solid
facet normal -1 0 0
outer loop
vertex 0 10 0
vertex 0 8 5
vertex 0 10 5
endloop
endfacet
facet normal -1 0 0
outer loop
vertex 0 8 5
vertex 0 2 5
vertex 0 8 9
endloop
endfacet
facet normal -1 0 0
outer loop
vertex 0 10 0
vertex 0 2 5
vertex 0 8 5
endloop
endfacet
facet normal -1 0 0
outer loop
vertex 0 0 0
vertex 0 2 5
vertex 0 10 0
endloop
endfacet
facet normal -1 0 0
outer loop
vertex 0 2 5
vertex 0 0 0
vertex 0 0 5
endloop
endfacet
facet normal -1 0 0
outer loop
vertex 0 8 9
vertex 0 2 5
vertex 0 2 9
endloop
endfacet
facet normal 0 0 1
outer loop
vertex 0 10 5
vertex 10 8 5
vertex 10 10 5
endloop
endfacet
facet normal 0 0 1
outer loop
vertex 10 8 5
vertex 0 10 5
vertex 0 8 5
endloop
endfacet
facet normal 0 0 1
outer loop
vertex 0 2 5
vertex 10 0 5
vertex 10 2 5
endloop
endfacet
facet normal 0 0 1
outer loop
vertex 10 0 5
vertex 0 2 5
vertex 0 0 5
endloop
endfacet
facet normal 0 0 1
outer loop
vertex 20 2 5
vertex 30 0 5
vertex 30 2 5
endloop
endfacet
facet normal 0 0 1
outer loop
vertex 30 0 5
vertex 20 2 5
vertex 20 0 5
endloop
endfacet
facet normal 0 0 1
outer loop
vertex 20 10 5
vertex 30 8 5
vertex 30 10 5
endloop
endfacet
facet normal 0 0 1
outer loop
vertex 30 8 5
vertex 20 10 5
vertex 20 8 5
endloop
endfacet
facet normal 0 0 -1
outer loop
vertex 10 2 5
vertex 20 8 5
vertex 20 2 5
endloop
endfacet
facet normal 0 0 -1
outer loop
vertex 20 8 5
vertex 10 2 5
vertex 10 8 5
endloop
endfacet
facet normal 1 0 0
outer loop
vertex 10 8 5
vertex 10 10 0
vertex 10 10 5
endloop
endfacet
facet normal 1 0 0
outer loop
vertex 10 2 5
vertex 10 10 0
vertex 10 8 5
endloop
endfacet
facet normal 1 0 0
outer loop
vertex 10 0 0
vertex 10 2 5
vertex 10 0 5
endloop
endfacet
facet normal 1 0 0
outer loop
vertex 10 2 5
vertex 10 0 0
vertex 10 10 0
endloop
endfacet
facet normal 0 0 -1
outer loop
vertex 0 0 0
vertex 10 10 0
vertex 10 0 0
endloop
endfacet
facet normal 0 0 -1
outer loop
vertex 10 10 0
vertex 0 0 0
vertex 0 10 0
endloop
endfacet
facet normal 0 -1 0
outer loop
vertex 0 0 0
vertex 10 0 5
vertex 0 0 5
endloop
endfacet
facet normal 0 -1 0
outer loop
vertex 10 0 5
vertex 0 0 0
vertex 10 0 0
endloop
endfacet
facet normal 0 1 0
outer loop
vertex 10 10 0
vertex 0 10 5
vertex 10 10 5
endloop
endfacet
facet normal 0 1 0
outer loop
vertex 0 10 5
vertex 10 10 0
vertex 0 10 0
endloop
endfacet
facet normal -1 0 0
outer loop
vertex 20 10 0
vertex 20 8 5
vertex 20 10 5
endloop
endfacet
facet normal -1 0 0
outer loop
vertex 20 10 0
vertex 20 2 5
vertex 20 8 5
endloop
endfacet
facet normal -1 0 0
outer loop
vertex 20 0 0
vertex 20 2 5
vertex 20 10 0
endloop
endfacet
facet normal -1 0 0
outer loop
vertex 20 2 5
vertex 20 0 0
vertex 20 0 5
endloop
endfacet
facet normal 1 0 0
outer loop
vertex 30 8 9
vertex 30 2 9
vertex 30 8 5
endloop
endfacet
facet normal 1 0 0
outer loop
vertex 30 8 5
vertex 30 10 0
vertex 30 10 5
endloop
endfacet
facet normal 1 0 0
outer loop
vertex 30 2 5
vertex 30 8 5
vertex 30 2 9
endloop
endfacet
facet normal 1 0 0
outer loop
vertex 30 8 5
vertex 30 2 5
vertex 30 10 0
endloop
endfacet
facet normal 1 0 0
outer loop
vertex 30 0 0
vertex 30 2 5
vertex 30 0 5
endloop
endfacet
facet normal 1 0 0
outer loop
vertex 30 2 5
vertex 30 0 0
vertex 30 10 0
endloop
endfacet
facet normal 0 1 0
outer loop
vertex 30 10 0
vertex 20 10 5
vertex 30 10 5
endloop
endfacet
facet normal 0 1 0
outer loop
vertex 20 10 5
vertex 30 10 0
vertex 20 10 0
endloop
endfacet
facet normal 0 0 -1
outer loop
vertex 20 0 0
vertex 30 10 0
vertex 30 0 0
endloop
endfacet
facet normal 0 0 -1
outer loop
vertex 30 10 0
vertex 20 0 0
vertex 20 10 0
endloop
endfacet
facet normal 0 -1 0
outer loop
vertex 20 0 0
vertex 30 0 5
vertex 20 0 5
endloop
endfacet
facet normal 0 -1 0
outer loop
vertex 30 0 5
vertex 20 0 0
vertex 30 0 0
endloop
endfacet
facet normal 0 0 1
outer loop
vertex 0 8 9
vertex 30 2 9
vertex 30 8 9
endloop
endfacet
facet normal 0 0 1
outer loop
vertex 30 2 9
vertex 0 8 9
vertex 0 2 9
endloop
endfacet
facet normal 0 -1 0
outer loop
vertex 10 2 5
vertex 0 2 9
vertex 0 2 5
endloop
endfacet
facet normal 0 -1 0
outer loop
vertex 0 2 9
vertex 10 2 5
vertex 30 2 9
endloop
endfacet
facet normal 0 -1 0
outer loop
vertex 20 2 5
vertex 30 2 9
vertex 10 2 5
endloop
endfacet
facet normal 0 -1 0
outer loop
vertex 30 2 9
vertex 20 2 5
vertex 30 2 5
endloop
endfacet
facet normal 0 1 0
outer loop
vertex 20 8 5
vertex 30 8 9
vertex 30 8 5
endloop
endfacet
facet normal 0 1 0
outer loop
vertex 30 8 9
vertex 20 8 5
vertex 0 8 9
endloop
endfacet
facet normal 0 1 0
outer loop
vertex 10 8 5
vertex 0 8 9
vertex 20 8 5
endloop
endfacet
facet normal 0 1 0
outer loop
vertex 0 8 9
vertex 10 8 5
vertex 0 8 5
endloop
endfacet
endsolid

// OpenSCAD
cube([10,10,5]);
translate([20,0,0]) cube([10,10,5]);

translate([0,2,5]) cube([30,6,4]);
